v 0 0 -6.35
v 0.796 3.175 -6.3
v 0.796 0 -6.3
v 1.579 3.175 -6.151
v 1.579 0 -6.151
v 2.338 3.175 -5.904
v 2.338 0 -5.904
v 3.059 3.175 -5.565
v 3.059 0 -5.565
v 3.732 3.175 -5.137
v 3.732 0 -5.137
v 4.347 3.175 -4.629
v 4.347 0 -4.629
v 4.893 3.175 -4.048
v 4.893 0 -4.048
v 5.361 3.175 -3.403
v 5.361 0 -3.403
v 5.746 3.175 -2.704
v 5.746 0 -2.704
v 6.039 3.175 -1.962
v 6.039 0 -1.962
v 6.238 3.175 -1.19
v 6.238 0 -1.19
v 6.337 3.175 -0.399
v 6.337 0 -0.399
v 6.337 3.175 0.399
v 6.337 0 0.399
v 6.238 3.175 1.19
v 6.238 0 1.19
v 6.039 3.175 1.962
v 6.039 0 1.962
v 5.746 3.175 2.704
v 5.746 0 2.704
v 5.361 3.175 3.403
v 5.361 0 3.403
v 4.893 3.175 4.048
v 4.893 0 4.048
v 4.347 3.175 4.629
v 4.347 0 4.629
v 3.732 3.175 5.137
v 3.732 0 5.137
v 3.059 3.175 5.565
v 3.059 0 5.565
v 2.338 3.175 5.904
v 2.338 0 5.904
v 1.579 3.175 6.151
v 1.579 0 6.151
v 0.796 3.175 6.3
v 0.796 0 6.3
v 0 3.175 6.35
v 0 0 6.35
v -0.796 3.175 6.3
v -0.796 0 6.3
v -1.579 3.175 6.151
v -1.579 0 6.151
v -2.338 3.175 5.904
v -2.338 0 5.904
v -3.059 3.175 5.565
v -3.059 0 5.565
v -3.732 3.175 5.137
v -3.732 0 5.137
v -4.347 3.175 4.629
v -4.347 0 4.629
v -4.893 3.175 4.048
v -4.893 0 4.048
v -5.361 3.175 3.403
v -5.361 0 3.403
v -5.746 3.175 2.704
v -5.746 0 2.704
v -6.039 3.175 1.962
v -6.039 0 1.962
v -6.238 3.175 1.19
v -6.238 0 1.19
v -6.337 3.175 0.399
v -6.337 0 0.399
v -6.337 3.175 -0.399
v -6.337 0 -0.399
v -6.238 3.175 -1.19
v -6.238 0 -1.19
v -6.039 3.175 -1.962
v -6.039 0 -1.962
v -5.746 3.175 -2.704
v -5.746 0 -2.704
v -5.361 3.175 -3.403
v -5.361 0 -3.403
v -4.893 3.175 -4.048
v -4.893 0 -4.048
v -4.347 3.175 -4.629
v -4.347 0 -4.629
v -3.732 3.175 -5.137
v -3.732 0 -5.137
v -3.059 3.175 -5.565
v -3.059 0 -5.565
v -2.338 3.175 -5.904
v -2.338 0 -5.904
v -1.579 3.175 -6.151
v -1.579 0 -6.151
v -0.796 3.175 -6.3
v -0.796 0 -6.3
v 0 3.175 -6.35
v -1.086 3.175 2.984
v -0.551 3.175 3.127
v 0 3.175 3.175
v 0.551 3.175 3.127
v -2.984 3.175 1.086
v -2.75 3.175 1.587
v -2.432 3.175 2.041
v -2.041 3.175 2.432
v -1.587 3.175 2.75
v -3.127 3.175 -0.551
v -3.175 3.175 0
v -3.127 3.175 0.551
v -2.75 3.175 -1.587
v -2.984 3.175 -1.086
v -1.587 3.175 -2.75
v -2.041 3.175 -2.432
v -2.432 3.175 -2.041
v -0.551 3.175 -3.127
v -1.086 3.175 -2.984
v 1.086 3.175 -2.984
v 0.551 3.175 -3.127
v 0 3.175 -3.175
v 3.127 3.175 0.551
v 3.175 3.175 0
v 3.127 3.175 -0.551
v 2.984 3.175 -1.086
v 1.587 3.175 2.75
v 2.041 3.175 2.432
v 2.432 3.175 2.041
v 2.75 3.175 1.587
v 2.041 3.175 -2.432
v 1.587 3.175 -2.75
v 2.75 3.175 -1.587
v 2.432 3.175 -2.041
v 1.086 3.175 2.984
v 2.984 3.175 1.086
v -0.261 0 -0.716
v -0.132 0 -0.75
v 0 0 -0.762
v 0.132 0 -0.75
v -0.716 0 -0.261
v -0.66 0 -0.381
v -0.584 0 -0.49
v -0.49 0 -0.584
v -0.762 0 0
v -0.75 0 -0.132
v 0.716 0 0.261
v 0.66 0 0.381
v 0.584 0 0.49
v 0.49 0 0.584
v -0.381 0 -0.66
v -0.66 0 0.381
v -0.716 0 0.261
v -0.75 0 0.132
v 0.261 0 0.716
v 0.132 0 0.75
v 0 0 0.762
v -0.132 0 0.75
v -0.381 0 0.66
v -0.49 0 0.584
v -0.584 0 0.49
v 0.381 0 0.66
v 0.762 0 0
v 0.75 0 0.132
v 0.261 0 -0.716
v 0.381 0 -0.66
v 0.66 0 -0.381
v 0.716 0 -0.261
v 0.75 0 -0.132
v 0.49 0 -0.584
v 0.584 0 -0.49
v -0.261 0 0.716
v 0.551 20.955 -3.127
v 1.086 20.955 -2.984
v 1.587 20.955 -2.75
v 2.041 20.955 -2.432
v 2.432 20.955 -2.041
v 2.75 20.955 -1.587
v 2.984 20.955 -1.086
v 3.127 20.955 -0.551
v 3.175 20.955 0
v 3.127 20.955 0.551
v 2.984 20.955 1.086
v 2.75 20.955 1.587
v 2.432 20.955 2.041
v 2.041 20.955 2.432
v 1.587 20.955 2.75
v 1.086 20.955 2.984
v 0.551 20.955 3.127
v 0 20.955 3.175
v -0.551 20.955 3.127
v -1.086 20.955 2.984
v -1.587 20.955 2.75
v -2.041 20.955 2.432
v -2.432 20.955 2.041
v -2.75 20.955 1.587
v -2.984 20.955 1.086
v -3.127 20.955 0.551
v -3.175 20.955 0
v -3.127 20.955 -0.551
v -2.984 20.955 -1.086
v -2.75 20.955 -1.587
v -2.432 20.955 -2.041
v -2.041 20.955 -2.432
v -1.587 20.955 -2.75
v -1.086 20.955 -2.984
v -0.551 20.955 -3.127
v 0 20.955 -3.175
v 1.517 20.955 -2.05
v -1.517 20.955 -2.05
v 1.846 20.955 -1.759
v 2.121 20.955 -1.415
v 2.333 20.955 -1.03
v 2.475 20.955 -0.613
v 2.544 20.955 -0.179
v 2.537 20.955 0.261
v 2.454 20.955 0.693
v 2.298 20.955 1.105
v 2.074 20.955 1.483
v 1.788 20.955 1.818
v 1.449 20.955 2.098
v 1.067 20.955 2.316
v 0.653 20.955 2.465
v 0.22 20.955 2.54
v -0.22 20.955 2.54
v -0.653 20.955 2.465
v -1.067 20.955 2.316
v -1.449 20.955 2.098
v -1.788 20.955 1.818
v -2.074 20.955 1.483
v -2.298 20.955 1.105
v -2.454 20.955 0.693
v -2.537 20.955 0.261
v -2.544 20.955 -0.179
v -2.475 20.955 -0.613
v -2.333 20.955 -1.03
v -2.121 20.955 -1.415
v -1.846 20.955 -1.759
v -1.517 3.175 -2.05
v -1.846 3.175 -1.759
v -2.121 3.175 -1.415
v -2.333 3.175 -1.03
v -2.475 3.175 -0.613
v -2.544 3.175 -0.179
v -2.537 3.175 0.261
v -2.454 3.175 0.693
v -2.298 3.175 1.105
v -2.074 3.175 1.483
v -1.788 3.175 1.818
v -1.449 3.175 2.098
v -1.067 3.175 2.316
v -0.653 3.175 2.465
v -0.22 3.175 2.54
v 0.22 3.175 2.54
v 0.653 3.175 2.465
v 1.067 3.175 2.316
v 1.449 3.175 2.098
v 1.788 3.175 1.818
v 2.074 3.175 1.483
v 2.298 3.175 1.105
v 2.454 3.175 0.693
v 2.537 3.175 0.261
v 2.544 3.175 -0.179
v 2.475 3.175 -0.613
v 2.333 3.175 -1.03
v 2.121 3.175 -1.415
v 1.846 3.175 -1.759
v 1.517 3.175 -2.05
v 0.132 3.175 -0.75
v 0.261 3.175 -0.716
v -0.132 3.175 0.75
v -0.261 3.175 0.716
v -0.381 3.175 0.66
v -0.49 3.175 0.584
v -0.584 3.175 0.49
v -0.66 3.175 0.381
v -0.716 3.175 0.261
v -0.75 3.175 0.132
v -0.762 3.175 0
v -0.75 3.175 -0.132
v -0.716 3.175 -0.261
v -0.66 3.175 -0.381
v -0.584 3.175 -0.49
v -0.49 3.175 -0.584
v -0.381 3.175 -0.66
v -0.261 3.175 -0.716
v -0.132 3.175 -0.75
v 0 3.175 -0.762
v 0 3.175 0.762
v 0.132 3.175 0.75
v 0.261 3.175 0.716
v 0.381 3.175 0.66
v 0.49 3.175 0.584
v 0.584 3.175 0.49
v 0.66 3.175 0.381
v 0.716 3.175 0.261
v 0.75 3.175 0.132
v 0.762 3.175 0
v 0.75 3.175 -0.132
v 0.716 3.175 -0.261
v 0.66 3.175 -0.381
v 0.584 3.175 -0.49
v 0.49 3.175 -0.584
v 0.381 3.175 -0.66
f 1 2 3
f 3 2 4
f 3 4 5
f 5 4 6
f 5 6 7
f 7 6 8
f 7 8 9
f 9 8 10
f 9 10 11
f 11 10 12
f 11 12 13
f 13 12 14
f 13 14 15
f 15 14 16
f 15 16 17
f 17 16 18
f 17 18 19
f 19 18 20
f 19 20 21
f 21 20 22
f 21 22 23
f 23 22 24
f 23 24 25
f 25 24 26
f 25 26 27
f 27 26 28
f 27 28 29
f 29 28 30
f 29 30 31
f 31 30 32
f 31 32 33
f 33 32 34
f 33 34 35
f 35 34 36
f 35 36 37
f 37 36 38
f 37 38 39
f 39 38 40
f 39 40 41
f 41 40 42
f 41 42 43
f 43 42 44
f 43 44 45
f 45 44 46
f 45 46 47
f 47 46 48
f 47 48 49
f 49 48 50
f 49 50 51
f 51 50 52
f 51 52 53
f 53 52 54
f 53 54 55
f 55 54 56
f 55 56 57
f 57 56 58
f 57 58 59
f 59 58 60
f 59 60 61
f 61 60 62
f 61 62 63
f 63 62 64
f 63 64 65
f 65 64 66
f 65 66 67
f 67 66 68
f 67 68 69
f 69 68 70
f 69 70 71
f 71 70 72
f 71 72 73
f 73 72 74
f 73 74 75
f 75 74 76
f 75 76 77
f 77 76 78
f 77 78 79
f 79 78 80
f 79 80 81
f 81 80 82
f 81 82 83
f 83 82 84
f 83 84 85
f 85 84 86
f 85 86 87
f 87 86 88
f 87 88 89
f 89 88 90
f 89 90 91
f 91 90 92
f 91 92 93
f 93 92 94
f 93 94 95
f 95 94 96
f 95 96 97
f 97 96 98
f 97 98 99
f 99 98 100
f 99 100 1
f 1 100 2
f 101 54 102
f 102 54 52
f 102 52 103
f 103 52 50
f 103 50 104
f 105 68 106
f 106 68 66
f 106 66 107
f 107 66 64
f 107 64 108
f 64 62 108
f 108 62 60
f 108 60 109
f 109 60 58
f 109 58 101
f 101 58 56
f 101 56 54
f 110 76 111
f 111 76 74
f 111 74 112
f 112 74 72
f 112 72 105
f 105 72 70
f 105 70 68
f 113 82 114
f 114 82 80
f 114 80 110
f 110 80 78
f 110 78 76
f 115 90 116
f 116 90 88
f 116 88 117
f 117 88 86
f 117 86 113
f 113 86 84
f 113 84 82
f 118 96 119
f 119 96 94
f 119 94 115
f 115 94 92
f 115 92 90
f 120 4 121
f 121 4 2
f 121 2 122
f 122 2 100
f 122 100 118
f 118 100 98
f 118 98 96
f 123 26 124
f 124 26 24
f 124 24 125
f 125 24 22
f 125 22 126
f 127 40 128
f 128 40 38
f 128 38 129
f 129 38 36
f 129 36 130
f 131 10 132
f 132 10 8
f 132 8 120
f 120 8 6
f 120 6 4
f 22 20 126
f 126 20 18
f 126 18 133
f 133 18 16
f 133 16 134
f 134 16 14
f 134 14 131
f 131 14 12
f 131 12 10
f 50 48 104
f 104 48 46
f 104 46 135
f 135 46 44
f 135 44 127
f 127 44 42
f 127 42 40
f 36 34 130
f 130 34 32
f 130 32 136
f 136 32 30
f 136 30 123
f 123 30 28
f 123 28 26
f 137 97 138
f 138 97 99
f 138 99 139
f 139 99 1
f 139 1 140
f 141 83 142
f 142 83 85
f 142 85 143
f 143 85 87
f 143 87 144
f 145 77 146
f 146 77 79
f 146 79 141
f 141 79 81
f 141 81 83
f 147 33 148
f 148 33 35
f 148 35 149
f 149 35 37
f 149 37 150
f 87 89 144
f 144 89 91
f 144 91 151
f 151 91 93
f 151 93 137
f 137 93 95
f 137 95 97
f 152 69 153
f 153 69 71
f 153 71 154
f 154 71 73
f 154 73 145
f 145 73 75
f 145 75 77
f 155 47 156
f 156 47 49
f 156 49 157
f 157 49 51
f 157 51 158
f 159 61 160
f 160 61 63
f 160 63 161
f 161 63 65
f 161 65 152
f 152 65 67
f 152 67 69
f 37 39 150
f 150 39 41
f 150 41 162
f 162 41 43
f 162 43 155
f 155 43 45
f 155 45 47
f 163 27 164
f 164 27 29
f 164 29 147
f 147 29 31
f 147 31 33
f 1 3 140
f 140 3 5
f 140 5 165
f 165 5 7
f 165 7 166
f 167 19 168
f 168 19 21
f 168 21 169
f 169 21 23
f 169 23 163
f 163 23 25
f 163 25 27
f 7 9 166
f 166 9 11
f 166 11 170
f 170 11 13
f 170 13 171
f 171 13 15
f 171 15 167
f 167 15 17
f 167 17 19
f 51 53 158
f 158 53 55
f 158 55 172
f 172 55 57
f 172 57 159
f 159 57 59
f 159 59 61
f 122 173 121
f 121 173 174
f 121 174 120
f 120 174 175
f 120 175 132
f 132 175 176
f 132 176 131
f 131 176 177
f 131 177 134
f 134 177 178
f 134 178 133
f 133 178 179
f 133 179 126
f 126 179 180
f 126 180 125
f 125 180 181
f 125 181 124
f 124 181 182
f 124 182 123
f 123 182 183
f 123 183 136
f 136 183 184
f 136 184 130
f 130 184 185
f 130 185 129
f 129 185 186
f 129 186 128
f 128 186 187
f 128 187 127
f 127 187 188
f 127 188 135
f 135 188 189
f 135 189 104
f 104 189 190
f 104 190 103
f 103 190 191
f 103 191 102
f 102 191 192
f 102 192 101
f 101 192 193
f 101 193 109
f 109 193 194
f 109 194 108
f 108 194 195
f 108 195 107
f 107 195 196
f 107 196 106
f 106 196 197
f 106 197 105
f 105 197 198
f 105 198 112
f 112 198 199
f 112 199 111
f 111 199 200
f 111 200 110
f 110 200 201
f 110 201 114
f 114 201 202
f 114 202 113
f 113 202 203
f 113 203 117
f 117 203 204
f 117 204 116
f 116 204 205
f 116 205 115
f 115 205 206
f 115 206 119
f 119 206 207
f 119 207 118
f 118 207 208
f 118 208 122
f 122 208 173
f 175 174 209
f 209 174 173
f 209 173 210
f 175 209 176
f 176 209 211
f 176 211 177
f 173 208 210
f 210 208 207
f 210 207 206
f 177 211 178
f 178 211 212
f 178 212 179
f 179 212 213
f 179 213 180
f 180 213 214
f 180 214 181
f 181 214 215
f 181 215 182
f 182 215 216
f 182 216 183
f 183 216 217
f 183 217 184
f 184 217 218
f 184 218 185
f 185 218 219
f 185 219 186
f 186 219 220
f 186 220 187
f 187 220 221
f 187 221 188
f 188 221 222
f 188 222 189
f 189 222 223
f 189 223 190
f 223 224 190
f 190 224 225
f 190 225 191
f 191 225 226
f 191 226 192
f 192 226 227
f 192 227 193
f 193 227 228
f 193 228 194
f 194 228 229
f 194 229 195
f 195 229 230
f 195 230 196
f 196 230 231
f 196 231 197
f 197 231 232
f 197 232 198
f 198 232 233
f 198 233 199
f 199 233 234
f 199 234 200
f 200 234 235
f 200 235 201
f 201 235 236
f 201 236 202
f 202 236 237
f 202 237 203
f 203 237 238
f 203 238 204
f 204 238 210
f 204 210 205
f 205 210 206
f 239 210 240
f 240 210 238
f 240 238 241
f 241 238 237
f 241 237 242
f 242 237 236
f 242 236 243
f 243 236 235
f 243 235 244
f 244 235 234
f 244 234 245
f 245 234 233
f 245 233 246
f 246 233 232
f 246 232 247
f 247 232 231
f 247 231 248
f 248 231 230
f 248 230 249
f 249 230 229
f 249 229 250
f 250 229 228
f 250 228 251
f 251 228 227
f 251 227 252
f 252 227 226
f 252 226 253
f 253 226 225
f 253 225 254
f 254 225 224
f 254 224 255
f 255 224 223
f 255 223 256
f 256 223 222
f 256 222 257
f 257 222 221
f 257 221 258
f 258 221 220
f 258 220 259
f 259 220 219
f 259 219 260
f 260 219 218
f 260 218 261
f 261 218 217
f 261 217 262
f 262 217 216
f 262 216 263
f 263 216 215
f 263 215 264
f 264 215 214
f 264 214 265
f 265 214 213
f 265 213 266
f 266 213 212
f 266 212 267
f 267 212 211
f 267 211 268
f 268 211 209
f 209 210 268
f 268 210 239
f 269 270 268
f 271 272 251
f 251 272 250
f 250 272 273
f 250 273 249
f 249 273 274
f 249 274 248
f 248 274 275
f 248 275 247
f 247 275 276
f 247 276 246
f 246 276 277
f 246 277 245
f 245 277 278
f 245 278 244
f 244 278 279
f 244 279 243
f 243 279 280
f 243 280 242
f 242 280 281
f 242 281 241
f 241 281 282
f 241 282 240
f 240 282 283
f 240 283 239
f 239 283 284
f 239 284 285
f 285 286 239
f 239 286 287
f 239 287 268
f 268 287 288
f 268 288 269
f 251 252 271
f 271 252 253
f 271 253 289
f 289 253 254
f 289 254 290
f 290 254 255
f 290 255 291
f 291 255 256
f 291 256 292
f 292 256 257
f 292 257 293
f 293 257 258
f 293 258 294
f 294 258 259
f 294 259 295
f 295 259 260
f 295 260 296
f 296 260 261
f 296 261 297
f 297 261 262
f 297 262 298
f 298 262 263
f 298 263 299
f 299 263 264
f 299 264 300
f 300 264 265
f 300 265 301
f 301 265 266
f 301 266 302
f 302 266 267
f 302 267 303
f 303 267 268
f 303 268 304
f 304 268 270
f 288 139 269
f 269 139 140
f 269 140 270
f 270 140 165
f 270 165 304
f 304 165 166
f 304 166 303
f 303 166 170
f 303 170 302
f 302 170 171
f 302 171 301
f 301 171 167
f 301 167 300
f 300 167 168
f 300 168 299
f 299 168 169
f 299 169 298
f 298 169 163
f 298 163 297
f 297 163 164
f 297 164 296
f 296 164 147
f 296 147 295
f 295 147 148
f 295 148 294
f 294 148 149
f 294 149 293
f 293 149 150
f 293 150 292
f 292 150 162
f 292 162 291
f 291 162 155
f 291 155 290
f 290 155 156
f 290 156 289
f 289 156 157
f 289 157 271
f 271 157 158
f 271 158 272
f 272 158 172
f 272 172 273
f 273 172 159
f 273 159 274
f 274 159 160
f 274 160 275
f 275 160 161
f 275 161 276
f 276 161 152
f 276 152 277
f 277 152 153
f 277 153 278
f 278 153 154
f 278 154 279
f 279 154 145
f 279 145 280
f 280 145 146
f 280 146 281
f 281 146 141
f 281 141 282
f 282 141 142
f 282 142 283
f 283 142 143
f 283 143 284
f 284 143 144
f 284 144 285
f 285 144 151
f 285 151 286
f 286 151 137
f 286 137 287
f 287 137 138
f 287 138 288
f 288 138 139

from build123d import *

# Parameters (mm, degrees)
SKETCH1_R           = 6.35
BOSS_EXTRUDE1_DEPTH = 3.175
SKETCH2_R           = 3.175
BOSS_EXTRUDE2_DEPTH = 17.78
CUT_EXTRUDE1_DEPTH  = 17.78
SKETCH4_R           = 0.762
CUT_EXTRUDE2_DEPTH  = 23.7981803


with BuildPart() as part:
    # Sketch1 → Boss-Extrude1 (new body)
    with BuildSketch(Plane(origin=(0, 0, 0), x_dir=(1, 0, 0), z_dir=(0, 1, 0))):
        with Locations(Location((0, 0, 0), (0, 0, 270))):
            Circle(SKETCH1_R)
    extrude(amount=BOSS_EXTRUDE1_DEPTH)

    # Sketch2 → Boss-Extrude2 (add)
    with BuildSketch(Plane(origin=(0, 3.175, 0), x_dir=(1, 0, 0), z_dir=(0, 1, 0))):
        with Locations(Location((0, 0, 0), (0, 0, 270))):
            Circle(SKETCH2_R)
    extrude(amount=BOSS_EXTRUDE2_DEPTH)

    # Sketch3 → Cut-Extrude1 (cut)
    with BuildSketch(Plane(origin=(0, 20.955, 0), x_dir=(1, 0, 0), z_dir=(0, 1, 0))):
        with BuildLine():
            Line((-1.516575089, 2.05), (1.516575089, 2.05))
            ThreePointArc((1.516575089, 2.05), (0, -2.55), (-1.516575089, 2.05))
        make_face()
    extrude(amount=-CUT_EXTRUDE1_DEPTH, mode=Mode.SUBTRACT)

    # Sketch4 → Cut-Extrude2 (cut, through all)
    with BuildSketch(Plane.XZ):
        with Locations(Location((0, 0, 0), (0, 0, 270))):
            Circle(SKETCH4_R)
    extrude(amount=-CUT_EXTRUDE2_DEPTH, mode=Mode.SUBTRACT)


solid = part.part
